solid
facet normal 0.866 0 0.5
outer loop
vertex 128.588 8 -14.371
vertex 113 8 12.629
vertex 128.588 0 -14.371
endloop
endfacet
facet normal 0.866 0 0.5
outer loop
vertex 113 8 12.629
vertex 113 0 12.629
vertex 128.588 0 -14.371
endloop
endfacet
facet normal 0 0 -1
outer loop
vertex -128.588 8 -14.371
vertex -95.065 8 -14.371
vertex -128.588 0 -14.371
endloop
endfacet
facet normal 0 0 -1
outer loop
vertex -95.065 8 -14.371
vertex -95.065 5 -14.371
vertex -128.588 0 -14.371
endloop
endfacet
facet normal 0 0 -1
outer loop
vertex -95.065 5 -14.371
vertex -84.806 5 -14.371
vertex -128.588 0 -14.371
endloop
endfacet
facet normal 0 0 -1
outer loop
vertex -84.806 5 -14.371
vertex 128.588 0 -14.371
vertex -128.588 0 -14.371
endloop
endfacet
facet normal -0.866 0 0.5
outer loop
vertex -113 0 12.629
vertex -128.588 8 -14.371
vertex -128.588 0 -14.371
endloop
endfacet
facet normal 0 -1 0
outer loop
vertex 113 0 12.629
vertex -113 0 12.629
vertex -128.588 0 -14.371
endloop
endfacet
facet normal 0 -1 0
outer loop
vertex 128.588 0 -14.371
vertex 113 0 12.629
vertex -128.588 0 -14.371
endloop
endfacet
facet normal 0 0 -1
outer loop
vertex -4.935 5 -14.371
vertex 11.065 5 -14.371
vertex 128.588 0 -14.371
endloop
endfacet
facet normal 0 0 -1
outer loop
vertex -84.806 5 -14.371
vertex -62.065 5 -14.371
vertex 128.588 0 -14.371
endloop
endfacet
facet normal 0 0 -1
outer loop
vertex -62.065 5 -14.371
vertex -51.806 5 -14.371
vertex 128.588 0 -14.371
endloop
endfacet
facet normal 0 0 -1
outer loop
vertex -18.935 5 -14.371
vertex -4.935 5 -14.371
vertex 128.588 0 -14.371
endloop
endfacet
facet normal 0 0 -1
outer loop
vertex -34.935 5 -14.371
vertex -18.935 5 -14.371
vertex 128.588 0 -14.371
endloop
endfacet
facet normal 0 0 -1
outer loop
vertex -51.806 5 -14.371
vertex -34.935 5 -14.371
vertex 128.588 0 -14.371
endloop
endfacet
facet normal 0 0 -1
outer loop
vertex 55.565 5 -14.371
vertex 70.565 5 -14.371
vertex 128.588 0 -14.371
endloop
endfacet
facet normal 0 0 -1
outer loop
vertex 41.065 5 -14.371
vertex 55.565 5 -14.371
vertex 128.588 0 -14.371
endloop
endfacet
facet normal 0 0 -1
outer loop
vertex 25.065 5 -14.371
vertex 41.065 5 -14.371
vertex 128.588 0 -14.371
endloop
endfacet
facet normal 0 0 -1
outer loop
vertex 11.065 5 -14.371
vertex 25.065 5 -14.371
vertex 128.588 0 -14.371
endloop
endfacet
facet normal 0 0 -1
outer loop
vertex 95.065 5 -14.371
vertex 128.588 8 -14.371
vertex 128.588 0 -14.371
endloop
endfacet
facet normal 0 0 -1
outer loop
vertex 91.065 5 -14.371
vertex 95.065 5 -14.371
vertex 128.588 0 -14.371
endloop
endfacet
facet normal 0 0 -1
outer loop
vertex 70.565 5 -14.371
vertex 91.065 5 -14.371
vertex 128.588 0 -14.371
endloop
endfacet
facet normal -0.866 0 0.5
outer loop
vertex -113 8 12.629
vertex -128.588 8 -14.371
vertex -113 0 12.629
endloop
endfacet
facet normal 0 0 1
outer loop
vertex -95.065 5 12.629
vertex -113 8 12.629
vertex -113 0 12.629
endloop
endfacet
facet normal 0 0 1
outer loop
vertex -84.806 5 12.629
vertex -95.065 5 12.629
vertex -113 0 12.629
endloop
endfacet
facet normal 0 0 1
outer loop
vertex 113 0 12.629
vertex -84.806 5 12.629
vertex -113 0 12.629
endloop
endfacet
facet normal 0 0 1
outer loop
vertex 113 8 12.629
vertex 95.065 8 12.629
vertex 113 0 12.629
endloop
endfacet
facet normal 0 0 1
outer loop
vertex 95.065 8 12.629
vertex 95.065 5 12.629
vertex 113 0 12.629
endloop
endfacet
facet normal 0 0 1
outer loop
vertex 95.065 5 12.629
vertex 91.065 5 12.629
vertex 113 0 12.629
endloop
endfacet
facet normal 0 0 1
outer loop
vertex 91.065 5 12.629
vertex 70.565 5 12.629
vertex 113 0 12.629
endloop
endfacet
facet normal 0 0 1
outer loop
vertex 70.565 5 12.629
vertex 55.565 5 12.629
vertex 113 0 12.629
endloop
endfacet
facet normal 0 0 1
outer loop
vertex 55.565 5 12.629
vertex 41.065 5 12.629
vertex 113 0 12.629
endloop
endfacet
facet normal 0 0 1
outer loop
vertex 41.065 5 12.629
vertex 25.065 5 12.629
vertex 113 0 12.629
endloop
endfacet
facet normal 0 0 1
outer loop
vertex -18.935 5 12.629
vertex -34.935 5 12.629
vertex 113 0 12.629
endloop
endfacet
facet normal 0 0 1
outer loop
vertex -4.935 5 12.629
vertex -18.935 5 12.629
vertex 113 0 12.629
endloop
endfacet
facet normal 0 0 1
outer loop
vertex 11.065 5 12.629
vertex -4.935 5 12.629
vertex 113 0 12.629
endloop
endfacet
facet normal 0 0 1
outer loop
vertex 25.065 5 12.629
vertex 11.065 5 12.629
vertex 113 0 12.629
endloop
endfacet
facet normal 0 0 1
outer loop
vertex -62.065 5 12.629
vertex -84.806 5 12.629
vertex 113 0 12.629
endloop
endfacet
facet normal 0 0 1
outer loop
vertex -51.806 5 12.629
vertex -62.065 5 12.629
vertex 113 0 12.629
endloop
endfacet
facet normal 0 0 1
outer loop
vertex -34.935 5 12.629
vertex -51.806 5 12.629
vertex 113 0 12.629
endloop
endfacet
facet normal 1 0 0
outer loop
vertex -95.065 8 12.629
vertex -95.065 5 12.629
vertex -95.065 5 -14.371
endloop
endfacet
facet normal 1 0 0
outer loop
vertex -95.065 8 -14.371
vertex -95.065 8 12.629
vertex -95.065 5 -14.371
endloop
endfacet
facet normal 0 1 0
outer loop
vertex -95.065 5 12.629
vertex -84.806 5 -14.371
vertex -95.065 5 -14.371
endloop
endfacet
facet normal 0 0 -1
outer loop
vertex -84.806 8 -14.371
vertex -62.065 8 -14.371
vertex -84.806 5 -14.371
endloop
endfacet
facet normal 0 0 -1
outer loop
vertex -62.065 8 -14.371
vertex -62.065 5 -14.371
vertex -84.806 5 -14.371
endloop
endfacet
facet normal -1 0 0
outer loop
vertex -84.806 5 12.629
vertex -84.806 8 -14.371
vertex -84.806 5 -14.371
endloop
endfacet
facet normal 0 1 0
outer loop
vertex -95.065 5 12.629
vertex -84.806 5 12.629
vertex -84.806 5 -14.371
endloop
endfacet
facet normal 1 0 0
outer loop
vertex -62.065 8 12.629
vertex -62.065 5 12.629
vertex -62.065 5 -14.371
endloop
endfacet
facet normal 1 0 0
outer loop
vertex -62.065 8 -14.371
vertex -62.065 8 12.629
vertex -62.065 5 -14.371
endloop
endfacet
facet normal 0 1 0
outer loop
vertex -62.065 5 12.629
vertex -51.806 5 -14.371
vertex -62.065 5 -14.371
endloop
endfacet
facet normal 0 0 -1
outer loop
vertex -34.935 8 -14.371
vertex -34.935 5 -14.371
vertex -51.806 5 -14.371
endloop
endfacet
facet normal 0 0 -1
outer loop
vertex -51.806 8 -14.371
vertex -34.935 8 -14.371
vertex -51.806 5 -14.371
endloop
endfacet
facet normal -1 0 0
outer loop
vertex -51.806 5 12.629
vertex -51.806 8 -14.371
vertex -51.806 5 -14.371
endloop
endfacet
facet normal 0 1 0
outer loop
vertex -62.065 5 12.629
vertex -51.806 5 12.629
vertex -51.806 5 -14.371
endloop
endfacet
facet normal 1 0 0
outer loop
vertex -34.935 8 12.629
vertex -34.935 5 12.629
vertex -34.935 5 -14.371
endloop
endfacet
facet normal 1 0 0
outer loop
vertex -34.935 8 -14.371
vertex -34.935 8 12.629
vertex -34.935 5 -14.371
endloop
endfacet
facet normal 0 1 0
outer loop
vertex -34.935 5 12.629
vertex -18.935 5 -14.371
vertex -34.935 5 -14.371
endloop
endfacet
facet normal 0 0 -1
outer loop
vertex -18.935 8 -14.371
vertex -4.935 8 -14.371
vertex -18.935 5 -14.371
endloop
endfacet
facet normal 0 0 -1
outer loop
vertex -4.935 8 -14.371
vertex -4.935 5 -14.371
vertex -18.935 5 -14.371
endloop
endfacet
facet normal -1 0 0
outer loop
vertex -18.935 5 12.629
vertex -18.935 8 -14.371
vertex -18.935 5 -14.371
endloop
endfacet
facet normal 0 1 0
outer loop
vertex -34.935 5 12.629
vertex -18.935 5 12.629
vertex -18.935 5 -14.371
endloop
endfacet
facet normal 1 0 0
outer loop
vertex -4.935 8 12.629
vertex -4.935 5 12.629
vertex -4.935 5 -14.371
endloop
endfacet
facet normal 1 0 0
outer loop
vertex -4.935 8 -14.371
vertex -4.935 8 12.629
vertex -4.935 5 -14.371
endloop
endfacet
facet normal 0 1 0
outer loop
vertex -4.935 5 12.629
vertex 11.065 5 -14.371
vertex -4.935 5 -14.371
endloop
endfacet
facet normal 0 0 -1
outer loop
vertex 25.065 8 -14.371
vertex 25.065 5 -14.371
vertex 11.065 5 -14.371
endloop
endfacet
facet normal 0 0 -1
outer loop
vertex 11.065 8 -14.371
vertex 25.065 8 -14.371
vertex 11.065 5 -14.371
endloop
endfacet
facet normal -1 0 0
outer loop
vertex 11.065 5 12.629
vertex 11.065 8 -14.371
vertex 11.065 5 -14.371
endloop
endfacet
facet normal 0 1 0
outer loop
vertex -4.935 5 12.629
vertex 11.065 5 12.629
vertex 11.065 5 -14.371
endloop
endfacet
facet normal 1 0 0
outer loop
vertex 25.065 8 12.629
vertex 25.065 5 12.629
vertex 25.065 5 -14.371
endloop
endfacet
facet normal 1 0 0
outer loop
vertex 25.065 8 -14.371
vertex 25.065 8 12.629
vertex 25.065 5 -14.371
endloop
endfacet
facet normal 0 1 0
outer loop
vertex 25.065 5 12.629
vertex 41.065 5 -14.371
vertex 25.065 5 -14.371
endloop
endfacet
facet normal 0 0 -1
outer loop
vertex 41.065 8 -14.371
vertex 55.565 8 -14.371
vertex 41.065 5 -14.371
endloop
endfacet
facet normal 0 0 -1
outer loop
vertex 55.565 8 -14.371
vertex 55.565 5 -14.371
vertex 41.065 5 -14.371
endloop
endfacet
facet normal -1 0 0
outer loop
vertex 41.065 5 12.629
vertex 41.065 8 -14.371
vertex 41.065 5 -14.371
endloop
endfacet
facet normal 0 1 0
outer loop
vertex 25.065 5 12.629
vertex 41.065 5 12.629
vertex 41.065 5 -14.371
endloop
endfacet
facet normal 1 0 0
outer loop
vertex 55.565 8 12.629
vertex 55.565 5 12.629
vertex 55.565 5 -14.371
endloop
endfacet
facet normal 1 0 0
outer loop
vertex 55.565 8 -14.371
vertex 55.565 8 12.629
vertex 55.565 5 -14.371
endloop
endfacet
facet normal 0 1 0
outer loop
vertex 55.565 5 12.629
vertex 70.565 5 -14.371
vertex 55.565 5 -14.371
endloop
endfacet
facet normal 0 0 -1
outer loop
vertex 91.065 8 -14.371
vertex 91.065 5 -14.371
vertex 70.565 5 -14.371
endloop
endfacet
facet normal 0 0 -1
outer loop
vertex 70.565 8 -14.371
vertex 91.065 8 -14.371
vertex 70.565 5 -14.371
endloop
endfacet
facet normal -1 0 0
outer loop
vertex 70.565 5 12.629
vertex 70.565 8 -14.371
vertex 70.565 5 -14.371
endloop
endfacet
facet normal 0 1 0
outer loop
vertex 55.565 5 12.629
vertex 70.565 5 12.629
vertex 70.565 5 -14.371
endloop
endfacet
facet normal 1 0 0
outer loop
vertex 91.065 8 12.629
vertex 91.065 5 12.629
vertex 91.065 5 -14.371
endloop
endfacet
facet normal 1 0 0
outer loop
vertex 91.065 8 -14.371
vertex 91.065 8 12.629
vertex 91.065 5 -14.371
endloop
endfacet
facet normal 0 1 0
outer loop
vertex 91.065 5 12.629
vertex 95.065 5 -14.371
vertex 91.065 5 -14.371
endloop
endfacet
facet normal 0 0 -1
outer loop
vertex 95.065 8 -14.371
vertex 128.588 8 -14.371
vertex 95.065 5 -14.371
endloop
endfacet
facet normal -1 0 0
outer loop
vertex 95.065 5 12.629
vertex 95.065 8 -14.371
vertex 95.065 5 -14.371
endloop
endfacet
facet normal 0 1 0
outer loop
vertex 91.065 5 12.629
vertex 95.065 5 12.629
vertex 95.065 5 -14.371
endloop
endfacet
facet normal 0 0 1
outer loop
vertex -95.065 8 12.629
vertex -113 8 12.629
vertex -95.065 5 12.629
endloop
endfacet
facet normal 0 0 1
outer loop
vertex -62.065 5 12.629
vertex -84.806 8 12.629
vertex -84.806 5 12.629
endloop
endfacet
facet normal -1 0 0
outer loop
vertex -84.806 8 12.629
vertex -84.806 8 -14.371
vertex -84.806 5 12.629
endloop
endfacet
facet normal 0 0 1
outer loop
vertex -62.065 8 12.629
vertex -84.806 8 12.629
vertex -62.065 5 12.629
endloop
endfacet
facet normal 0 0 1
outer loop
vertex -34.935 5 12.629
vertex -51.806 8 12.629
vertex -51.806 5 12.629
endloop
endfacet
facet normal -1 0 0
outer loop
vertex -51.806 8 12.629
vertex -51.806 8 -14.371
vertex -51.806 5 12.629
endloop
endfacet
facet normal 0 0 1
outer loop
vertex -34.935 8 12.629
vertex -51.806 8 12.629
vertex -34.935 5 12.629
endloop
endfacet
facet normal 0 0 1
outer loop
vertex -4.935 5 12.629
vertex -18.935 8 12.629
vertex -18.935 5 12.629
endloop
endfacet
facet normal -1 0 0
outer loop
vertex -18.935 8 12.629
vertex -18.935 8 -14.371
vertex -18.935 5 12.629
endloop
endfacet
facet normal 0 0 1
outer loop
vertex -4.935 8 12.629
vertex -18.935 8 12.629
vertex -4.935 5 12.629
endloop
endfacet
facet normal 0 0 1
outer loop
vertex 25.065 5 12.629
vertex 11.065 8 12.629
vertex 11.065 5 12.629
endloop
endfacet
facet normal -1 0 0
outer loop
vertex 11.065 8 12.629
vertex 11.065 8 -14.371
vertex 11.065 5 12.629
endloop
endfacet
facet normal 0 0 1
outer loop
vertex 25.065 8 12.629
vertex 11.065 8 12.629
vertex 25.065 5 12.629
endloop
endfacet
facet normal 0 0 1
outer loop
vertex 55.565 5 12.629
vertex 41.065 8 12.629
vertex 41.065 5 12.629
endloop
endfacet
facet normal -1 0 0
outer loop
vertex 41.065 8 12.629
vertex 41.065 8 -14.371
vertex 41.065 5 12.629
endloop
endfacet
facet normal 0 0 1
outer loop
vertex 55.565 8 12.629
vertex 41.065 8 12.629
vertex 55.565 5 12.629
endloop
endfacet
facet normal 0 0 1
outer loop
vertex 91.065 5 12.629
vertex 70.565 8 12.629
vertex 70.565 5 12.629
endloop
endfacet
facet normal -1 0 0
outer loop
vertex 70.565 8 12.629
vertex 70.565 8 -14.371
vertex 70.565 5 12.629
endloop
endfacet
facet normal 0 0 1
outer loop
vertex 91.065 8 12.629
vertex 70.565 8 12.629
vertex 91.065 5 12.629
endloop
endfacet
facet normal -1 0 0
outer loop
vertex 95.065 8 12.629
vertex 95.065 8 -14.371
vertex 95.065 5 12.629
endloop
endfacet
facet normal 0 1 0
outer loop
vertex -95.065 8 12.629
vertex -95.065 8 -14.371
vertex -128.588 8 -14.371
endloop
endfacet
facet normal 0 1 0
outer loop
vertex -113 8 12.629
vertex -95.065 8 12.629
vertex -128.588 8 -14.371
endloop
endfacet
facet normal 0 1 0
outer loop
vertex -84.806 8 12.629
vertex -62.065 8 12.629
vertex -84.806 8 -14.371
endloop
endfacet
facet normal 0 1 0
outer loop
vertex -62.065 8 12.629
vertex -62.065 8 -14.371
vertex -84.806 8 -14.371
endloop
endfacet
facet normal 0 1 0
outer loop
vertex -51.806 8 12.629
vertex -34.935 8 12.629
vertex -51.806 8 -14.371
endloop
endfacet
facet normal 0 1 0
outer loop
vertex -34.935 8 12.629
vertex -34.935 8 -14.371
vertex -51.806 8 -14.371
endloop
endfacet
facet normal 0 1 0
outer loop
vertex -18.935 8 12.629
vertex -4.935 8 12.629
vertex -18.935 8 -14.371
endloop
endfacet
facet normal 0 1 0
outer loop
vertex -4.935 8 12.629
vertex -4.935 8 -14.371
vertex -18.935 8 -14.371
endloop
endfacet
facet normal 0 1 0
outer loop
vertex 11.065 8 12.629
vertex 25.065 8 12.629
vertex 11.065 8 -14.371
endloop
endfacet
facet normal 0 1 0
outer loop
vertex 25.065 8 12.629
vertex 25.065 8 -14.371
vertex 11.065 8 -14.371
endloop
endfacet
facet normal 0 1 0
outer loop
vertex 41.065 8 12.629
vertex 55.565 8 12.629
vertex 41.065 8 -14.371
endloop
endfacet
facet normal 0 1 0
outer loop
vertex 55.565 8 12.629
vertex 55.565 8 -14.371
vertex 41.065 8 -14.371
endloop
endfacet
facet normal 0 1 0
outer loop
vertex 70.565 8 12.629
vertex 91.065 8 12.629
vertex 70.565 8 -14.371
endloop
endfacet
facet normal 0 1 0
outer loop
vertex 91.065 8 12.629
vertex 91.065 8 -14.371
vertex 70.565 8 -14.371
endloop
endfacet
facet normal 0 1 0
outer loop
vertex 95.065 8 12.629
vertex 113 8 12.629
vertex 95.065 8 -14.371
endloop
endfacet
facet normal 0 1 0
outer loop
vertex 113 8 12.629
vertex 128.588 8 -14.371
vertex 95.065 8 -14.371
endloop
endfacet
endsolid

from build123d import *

# Parameters (mm, degrees)
BOSS_EXTRUDE1_DEPTH = 8
SKETCH4_W           = 10.258234737
SKETCH4_H           = 27
SKETCH4_W_2         = 16
SKETCH4_W_3         = 15
SKETCH4_W_4         = 4
CUT_EXTRUDE1_DEPTH  = 3


with BuildPart() as part:
    # Sketch1 → Boss-Extrude1 (new body)
    with BuildSketch(Plane(origin=(0, 0, 0), x_dir=(1, 0, 0), z_dir=(0, 1, 0))):
        Polygon((-113, -12.62891462), (113, -12.62891462), (128.588457268, 14.37108538), (-128.588457268, 14.37108538), align=None)
    extrude(amount=BOSS_EXTRUDE1_DEPTH)

    # Sketch4 → Cut-Extrude1 (cut)
    with BuildSketch(Plane(origin=(0, 8, 0), x_dir=(1, 0, 0), z_dir=(0, 1, 0))):
        with Locations((-56.935441316, 0.87108538)):
            Rectangle(SKETCH4_W, SKETCH4_H)
        with Locations((-89.935441316, 0.87108538)):
            Rectangle(SKETCH4_W, SKETCH4_H)
        with Locations((-26.935441316, 0.87108538)):
            Rectangle(SKETCH4_W_2, SKETCH4_H)
        with Locations((3.064558684, 0.87108538)):
            Rectangle(SKETCH4_W_2, SKETCH4_H)
        with Locations((33.064558684, 0.87108538)):
            Rectangle(SKETCH4_W_2, SKETCH4_H)
        with Locations((63.064558684, 0.87108538)):
            Rectangle(SKETCH4_W_3, SKETCH4_H)
        with Locations((93.064558684, 0.87108538)):
            Rectangle(SKETCH4_W_4, SKETCH4_H)
    extrude(amount=-CUT_EXTRUDE1_DEPTH, mode=Mode.SUBTRACT)


solid = part.part
